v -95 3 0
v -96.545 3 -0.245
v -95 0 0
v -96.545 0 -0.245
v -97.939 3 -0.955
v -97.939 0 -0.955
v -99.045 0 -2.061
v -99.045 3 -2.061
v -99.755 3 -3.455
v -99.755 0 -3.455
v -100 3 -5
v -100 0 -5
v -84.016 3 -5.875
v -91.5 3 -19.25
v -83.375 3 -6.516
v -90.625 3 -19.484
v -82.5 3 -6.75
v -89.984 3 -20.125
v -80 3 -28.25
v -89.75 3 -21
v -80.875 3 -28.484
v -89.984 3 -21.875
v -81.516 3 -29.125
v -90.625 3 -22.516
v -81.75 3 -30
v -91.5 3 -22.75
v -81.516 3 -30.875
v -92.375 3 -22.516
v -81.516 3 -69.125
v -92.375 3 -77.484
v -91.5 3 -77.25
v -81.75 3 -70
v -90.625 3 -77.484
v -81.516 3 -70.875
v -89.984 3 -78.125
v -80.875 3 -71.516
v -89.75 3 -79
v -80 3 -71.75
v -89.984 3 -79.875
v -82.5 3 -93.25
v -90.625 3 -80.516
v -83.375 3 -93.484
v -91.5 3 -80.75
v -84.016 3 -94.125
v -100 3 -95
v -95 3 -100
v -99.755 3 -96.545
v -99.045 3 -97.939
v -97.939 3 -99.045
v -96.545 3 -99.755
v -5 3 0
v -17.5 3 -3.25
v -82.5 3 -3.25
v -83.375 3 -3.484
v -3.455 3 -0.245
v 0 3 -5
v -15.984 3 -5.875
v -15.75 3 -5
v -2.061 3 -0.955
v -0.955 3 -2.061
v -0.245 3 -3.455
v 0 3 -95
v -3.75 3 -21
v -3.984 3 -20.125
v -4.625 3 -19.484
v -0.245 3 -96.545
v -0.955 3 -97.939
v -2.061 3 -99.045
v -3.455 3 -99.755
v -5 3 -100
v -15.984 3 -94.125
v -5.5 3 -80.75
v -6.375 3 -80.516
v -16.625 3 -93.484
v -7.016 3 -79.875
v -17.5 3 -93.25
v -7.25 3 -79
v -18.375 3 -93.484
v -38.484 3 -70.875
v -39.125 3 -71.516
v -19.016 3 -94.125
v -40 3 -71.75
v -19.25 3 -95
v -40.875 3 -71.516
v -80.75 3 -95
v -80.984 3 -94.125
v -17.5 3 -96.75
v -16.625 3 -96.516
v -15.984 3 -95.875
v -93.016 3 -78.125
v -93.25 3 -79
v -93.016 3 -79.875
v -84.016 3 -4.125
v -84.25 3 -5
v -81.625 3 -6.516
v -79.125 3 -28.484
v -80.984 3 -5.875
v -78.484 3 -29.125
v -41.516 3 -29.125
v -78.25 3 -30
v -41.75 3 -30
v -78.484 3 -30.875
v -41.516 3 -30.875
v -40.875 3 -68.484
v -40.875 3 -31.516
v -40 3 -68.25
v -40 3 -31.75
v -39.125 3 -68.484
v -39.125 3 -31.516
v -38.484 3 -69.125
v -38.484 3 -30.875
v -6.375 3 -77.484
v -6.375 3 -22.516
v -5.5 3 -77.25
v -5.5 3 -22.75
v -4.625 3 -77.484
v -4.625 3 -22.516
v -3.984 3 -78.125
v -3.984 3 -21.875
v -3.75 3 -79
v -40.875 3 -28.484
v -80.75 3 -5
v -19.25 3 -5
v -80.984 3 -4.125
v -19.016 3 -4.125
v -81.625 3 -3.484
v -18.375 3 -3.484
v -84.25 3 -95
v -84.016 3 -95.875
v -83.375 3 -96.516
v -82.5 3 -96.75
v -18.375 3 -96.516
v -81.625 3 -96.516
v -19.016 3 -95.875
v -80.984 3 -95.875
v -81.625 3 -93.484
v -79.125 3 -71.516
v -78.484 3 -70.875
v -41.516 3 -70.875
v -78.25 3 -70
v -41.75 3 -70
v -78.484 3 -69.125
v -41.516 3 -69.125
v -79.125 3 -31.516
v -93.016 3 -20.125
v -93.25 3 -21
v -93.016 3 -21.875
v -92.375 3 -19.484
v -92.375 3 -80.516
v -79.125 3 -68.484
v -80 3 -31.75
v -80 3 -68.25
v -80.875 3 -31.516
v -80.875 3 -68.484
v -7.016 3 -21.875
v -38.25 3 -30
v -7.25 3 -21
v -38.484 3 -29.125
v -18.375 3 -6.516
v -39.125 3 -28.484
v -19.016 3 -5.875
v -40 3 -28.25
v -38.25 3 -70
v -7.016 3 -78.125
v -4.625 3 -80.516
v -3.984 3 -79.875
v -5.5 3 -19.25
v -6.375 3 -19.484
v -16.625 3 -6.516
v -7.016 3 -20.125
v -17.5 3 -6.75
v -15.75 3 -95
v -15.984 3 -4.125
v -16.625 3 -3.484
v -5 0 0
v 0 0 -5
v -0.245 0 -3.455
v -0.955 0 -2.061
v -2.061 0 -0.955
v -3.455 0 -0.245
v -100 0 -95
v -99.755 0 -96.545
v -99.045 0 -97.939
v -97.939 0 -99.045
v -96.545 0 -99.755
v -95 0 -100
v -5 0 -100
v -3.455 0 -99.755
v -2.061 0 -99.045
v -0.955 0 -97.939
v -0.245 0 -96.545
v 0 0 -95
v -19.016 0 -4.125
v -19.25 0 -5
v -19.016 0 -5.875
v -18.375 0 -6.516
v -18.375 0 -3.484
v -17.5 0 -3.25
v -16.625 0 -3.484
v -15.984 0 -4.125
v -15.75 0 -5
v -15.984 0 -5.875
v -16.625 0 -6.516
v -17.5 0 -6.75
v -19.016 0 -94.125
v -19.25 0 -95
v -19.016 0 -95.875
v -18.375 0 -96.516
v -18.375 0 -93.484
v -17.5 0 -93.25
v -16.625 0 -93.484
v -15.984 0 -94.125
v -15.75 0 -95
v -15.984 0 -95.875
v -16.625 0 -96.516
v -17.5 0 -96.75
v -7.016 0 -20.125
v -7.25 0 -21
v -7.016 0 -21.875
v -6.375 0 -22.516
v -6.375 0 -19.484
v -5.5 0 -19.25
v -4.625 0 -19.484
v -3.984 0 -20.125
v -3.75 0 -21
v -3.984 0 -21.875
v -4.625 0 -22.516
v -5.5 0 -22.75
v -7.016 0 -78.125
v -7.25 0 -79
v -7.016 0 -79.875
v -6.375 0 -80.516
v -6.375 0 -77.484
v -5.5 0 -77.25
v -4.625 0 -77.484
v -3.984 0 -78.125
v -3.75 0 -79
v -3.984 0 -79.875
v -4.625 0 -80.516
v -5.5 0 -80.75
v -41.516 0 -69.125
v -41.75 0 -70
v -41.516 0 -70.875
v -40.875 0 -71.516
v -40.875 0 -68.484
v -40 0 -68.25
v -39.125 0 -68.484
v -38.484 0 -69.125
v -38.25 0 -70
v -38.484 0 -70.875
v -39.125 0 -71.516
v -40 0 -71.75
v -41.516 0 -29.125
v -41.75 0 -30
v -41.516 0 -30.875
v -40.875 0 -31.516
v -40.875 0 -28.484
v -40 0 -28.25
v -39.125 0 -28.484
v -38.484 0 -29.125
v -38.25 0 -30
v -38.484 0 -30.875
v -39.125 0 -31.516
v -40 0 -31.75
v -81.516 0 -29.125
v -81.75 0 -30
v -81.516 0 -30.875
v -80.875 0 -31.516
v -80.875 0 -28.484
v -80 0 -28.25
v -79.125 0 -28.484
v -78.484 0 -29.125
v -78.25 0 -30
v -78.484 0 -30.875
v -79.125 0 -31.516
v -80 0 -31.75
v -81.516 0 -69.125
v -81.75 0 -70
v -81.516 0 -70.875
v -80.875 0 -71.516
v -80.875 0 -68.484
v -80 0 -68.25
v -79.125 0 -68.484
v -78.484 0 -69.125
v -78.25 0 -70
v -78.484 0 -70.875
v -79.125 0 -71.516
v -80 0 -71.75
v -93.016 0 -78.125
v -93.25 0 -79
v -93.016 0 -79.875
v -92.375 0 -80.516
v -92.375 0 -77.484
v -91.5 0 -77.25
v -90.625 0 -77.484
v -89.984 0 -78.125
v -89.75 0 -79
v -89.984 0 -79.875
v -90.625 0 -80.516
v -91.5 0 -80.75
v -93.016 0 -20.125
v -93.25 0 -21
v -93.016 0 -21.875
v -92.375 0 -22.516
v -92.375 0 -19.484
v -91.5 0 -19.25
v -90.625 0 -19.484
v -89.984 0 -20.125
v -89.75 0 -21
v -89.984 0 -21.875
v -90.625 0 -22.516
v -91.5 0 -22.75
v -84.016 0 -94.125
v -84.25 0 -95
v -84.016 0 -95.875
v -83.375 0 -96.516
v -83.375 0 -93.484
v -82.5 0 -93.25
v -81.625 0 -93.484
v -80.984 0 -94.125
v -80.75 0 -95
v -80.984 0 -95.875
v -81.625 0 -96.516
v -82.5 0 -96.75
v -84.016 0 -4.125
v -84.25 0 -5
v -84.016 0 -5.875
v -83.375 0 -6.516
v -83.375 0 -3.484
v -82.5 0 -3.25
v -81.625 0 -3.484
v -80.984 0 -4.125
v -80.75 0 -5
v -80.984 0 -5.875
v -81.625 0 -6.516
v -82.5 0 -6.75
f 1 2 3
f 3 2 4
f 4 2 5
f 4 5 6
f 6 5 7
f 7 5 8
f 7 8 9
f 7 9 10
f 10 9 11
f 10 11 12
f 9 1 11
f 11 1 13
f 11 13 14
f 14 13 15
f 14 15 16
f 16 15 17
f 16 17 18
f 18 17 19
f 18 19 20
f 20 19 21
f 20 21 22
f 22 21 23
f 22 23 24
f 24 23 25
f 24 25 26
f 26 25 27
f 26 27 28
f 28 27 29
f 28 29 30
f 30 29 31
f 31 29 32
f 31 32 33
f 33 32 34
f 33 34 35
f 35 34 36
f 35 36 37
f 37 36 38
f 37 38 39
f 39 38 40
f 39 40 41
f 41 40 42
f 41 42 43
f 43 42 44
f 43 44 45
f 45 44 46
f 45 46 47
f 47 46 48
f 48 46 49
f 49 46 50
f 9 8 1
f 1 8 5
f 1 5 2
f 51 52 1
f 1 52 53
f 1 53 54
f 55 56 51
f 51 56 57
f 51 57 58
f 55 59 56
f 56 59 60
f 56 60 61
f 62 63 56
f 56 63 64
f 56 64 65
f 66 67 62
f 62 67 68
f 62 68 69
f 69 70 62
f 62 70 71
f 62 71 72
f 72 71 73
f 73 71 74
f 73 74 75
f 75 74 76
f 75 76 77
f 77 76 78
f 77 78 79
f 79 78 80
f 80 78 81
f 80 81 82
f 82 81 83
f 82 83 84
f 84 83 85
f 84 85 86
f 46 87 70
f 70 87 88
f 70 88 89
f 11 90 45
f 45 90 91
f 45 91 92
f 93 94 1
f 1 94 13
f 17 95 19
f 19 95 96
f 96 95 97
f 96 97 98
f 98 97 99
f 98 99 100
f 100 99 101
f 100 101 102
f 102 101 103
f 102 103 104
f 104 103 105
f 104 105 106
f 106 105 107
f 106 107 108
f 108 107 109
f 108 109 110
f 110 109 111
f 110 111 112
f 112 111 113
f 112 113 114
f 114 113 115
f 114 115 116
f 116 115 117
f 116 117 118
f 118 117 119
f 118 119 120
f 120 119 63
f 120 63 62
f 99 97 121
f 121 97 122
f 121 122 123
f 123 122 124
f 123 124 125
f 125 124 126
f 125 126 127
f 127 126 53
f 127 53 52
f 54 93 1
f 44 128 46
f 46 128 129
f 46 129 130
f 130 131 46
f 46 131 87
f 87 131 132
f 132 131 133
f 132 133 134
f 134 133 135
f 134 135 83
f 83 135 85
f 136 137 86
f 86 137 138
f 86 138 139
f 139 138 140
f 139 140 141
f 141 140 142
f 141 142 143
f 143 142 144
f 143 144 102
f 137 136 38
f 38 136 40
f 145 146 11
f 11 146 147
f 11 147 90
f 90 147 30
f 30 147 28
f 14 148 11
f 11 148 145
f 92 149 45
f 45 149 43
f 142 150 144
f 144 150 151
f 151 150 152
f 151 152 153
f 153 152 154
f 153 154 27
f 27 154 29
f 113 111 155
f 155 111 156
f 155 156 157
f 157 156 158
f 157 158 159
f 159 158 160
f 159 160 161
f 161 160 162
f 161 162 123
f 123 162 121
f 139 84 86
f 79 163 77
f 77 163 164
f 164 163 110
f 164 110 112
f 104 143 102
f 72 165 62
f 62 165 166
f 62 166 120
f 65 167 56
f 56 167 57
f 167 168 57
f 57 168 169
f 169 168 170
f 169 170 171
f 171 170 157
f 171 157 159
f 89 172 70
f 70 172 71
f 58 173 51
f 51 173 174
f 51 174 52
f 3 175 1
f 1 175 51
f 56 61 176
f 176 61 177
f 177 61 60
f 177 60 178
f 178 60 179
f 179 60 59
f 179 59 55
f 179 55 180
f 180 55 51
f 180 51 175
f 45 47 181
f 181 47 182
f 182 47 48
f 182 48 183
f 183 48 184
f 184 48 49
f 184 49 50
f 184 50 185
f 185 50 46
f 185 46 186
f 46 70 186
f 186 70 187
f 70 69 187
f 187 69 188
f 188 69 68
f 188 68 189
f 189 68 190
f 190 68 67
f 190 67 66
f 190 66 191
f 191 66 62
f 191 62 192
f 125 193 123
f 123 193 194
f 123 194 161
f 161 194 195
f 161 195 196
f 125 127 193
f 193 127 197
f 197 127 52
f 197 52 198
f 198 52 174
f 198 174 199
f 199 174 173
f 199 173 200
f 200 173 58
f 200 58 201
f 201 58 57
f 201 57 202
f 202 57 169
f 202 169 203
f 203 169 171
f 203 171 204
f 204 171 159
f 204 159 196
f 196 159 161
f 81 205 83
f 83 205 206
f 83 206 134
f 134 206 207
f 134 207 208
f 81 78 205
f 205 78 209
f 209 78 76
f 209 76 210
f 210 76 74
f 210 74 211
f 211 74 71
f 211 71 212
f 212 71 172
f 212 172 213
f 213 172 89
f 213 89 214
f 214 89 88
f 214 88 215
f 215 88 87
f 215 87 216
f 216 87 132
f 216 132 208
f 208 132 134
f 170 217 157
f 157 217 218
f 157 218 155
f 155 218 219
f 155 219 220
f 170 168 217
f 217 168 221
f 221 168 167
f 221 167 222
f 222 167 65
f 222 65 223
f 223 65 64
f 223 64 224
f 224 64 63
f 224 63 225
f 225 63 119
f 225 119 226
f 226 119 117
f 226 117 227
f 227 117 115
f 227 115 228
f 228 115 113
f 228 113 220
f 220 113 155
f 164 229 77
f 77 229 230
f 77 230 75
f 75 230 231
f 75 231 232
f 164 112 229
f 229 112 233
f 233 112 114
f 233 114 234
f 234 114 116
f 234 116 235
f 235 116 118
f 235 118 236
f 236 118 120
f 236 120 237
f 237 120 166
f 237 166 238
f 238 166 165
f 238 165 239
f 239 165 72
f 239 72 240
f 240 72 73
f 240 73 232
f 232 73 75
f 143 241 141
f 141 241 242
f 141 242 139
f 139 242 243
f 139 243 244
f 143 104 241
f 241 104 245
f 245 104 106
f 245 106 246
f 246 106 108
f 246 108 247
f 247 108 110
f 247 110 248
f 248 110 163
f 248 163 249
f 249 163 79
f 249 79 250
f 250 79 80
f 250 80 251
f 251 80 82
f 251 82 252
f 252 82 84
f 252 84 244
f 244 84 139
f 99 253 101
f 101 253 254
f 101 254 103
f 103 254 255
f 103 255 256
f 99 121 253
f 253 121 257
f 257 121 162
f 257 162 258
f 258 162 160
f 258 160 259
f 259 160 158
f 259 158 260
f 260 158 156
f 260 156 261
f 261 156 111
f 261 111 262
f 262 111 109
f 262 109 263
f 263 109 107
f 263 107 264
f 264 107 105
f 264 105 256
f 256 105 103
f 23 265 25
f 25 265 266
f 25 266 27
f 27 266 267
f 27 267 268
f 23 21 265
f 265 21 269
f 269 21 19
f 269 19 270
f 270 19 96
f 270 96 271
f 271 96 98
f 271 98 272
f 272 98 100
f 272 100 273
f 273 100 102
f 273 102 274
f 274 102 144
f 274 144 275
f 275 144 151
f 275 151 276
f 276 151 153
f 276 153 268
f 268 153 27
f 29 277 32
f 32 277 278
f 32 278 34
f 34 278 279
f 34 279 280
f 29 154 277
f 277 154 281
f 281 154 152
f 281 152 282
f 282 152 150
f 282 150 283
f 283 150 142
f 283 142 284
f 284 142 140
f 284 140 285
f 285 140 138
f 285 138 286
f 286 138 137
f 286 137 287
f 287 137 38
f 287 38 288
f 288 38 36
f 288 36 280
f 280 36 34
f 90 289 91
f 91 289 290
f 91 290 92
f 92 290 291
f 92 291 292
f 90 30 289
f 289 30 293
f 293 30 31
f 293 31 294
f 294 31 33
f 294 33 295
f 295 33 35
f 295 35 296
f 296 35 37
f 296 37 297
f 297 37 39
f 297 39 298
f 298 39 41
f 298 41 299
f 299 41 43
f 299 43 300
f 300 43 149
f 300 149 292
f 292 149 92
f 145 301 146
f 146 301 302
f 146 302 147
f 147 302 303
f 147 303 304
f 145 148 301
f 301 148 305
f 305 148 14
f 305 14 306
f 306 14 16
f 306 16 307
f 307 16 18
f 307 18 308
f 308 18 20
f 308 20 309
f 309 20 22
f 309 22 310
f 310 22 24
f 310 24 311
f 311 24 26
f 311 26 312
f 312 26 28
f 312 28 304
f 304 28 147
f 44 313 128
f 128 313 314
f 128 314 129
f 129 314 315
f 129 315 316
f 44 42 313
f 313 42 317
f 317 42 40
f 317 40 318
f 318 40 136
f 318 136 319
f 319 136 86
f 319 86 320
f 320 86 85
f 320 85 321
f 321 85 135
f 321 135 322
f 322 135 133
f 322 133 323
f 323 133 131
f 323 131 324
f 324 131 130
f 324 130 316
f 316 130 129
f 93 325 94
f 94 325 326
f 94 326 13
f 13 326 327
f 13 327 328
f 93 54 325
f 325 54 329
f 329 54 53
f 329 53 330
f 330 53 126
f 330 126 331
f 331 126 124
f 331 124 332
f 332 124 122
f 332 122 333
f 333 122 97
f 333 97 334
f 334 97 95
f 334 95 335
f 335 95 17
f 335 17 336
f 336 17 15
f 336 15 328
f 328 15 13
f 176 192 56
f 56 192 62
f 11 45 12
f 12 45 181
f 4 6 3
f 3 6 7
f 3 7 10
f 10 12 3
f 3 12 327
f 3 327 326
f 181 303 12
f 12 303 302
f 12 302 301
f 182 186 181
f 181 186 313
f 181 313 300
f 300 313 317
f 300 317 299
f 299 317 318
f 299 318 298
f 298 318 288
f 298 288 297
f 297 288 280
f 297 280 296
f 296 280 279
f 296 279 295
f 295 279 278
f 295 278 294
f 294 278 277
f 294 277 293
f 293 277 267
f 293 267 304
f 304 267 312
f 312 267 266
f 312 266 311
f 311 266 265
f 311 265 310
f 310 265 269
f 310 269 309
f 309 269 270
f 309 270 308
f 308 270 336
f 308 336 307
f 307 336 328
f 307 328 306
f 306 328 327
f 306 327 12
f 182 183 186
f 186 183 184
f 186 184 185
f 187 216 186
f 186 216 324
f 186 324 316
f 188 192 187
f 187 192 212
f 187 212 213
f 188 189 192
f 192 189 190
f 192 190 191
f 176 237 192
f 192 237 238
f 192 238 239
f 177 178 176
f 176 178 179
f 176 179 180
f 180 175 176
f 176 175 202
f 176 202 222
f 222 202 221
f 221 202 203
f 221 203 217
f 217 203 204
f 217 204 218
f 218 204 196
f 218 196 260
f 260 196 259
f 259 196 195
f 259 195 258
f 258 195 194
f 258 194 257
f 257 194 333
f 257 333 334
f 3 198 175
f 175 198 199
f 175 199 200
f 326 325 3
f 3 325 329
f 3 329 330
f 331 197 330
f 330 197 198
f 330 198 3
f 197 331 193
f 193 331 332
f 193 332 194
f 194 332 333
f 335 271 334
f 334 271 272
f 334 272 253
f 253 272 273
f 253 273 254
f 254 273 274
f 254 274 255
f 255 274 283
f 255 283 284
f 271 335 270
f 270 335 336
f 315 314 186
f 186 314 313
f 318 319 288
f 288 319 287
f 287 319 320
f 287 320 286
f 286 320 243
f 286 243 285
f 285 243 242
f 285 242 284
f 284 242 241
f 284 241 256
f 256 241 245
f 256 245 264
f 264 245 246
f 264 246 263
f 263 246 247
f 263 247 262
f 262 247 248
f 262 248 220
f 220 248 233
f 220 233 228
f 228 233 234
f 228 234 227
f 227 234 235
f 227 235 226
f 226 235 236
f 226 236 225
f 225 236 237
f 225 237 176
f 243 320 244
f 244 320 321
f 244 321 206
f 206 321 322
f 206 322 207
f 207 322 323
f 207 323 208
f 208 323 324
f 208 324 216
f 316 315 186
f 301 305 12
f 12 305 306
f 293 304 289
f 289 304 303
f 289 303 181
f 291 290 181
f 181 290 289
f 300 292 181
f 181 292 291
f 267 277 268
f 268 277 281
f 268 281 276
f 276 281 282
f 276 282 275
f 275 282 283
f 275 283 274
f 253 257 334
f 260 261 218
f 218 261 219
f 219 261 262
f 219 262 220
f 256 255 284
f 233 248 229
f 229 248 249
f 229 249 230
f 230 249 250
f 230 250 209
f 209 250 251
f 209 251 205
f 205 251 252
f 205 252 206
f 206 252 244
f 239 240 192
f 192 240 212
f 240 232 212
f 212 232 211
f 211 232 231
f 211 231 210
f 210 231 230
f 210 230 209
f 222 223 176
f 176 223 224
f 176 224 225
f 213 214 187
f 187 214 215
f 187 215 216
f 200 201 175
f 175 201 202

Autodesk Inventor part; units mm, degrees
ref_plane "YZ Plane" through (0, 0, 0) normal (1, 0, 0) x (0, 1, 0)
ref_plane "XZ Plane" through (0, 0, 0) normal (0, 1, 0) x (-1, 0, 0)
ref_plane "XY Plane" through (0, 0, 0) normal (0, 0, 1) x (1, 0, 0)
sketch "Sketch2" plane through (0, 0, 0) normal (0, 1, 0) x (-1, 0, 0)
  line L0 (0, 0) -> (100, 0)
  line L1 (100, 0) -> (100, -100)
  line L2 (100, -100) -> (0, -100)
  line L3 (0, -100) -> (0, 0)
  circle A0 centre (82.5, -5) radius 1.75
  circle A1 centre (82.5, -95) radius 1.75
  circle A2 centre (17.5, -5) radius 1.75
  circle A3 centre (17.5, -95) radius 1.75
  circle A4 centre (80, -30) radius 1.75
  circle A5 centre (91.5, -21) radius 1.75
  circle A6 centre (91.5, -79) radius 1.75
  circle A7 centre (5.5, -21) radius 1.75
  circle A8 centre (5.5, -79) radius 1.75
  line L4 (50, 0) -> (50, -100)
  circle A9 centre (40, -30) radius 1.75
  circle A10 centre (80, -70) radius 1.75
  circle A11 centre (40, -70) radius 1.75
  dimension "d13" = 100
  dimension "d14" = 100
  dimension "d15" = 3.5
  dimension "d16" = 17.5
  dimension "d17" = 5
  dimension "d20" = 90
  dimension "d23" = 65
  dimension "d26" = 3.5
  dimension "d27" = 20
  dimension "d28" = 30
  dimension "d32" = 3.5
  dimension "d35" = 58
  dimension "d38" = 86
  dimension "d41" = 8.5
  dimension "d42" = 21
  dimension "d51" = 40
  dimension "d54" = 40
extrude "Extrusion2" add sketch "Sketch2" along normal blind 3
fillet "Fillet2" radius 5 4 edges at (0, 1.5, -100) (-100, 1.5, -100) (0, 1.5, 0) (-100, 1.5, 0)
properties part number "EboxMounting_Plate"
